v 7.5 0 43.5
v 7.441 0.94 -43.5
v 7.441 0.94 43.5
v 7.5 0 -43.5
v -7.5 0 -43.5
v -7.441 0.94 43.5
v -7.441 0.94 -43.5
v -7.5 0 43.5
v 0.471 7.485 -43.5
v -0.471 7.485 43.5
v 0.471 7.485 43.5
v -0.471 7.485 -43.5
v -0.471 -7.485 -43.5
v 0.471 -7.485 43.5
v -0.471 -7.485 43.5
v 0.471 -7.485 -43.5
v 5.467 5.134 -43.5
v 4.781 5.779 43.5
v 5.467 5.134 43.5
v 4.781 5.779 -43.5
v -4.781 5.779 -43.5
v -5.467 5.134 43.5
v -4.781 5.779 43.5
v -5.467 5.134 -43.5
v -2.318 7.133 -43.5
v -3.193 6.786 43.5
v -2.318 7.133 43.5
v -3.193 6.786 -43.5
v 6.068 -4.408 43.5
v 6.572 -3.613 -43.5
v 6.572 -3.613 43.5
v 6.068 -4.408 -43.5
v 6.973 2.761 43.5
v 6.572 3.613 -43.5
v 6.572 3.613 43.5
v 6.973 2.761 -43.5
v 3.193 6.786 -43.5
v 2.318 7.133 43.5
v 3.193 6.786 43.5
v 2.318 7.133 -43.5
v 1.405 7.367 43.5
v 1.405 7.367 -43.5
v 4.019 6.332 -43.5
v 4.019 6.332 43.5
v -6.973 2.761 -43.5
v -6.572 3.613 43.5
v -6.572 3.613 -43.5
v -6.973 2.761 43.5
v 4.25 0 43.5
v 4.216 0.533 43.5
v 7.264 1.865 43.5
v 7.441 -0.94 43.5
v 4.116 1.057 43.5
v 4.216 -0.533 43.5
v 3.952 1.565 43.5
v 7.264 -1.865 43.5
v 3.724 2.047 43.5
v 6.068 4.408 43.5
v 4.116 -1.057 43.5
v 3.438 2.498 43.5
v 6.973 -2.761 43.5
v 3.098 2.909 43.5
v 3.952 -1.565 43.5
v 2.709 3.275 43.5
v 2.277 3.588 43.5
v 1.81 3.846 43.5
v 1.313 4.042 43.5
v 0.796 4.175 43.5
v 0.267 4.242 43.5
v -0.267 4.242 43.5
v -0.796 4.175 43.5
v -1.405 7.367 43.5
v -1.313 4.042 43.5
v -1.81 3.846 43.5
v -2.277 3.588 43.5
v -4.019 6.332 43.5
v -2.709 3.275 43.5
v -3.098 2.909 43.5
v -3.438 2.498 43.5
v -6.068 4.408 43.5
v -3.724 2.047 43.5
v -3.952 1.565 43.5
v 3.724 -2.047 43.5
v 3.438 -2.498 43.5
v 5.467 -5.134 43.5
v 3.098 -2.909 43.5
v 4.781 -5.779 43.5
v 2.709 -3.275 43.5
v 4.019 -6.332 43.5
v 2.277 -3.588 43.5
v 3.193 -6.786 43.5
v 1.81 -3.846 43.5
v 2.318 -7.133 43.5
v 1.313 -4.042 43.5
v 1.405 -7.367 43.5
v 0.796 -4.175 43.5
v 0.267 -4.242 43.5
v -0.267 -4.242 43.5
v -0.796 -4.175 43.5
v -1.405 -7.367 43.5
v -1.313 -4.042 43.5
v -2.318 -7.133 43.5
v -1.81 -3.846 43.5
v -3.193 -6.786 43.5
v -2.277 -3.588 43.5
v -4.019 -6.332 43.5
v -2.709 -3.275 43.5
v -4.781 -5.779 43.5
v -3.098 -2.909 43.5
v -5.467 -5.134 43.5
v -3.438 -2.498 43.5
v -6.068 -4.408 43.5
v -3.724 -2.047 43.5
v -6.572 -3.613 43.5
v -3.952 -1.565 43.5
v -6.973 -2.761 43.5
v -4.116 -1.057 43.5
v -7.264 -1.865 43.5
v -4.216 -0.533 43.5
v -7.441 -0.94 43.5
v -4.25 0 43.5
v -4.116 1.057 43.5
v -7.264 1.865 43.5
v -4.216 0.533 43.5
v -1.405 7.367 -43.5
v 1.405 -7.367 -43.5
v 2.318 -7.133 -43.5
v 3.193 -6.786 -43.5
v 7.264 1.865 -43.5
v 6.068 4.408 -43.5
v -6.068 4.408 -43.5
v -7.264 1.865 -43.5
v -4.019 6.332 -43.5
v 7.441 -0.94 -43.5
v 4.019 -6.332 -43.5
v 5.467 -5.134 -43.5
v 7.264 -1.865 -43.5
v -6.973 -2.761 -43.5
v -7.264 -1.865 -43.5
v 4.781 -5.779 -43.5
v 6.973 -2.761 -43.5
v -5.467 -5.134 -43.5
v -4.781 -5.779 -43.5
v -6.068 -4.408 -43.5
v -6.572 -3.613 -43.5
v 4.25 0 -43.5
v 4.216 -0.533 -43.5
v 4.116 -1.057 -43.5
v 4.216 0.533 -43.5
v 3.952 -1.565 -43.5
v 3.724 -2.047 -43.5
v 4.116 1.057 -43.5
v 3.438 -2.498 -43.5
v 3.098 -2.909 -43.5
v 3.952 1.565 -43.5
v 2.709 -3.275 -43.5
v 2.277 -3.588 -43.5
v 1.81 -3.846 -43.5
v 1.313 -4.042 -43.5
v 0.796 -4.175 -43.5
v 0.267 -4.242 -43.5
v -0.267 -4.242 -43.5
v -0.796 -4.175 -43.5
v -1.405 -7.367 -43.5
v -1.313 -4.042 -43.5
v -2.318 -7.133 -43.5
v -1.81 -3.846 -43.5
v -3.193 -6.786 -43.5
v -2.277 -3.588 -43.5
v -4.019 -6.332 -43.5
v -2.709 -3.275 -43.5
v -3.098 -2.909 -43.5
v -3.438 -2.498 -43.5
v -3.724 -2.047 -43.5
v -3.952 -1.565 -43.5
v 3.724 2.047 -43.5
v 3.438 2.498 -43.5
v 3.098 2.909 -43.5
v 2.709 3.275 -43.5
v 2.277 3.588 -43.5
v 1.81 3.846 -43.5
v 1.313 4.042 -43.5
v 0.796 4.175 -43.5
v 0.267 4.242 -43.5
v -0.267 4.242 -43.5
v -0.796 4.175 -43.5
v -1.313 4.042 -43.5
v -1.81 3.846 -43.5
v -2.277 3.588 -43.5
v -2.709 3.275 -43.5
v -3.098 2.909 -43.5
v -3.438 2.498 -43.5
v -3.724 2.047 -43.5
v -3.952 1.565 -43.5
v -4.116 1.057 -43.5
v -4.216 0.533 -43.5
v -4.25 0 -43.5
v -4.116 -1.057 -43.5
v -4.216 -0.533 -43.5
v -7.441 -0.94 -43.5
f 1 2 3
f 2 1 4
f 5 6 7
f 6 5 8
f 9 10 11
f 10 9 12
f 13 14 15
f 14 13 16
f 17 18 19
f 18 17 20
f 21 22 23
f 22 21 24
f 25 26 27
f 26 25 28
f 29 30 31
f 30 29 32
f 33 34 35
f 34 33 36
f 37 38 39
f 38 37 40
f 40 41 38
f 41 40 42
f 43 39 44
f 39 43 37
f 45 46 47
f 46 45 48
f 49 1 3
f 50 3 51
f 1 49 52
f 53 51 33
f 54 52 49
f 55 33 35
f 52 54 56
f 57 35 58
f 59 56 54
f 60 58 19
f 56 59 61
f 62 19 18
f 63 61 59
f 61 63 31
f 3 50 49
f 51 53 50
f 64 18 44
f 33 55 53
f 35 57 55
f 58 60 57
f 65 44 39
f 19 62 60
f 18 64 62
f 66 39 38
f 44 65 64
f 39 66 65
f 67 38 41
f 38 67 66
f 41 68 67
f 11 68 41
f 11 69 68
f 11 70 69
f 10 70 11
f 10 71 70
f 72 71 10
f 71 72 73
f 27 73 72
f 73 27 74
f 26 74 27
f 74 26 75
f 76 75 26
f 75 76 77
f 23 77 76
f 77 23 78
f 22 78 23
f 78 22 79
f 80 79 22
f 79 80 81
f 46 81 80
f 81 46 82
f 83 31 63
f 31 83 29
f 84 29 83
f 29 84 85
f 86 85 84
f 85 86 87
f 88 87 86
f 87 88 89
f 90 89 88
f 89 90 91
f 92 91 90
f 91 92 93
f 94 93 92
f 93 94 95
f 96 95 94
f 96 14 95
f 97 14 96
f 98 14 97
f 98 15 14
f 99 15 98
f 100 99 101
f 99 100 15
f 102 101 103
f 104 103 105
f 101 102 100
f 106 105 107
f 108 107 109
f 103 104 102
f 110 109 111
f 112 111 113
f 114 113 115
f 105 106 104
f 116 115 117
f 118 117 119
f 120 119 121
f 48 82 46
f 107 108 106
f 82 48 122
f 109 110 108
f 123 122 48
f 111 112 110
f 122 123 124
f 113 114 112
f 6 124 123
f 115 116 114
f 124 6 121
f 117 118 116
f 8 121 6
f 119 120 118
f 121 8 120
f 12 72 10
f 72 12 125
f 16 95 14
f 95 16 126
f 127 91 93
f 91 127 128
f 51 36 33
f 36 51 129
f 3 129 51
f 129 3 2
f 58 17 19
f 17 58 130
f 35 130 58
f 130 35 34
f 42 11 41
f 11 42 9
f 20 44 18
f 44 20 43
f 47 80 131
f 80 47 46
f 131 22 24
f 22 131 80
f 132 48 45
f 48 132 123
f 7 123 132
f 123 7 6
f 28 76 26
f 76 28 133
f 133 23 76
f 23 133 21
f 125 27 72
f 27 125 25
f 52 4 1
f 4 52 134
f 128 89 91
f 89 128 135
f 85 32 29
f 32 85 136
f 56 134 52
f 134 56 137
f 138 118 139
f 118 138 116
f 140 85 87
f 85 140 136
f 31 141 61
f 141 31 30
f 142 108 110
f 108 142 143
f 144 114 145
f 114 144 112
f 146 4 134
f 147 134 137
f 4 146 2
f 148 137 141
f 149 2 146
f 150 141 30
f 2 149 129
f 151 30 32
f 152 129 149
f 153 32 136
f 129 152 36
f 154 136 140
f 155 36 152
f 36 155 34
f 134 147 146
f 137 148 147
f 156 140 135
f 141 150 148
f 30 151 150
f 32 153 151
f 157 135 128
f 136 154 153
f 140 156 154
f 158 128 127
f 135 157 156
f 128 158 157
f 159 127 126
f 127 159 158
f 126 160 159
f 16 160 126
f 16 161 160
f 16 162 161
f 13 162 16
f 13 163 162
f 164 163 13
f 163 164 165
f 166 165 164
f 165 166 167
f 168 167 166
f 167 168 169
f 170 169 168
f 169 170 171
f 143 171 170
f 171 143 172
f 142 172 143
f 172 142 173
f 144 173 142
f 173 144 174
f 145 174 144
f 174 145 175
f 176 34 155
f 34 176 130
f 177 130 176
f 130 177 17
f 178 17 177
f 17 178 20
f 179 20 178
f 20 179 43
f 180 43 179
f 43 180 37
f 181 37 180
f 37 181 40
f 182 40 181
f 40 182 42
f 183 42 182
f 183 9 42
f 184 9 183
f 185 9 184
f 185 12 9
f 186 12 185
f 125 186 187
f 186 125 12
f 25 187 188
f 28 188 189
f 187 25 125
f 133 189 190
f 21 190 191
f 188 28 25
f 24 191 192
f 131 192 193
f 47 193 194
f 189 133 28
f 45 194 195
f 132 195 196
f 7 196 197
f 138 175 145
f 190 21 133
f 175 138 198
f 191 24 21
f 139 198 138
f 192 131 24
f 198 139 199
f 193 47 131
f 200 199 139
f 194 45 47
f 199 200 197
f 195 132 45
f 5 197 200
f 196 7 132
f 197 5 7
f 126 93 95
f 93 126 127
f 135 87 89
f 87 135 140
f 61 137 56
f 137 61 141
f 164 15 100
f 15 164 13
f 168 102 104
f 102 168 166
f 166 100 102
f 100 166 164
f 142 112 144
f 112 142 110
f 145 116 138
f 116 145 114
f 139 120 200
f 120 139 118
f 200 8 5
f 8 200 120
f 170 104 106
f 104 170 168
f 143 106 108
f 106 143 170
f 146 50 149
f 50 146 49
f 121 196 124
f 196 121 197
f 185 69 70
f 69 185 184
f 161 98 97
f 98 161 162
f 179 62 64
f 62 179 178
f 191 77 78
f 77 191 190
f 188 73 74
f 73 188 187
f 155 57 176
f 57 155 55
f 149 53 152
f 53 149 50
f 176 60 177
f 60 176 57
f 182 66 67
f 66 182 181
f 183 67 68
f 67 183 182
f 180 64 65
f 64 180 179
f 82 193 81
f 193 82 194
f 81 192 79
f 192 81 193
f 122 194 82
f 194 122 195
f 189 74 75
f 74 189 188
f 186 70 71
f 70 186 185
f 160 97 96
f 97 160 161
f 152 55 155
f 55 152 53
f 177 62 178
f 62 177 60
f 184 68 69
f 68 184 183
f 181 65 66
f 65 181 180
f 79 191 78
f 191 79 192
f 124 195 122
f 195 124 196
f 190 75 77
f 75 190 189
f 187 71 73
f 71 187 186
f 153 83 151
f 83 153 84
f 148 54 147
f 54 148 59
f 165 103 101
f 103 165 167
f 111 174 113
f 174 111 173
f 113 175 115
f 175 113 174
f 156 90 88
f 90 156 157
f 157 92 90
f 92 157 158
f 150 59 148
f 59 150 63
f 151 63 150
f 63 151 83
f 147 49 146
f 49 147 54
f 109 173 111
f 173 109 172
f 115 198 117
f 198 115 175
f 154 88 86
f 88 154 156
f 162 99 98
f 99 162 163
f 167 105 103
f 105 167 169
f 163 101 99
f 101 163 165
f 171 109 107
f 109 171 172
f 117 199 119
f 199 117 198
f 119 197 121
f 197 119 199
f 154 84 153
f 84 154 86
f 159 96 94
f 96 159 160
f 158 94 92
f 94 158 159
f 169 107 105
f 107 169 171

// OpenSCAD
$fn = 50;


difference() {
	union() {
		translate(v = [0, 0, -43.5000000000]) {
			cylinder(h = 87, r = 7.5000000000);
		}
	}
	union() {
		translate(v = [0, 0, -100.0000000000]) {
			cylinder(h = 200, r = 4.2500000000);
		}
	}
}
